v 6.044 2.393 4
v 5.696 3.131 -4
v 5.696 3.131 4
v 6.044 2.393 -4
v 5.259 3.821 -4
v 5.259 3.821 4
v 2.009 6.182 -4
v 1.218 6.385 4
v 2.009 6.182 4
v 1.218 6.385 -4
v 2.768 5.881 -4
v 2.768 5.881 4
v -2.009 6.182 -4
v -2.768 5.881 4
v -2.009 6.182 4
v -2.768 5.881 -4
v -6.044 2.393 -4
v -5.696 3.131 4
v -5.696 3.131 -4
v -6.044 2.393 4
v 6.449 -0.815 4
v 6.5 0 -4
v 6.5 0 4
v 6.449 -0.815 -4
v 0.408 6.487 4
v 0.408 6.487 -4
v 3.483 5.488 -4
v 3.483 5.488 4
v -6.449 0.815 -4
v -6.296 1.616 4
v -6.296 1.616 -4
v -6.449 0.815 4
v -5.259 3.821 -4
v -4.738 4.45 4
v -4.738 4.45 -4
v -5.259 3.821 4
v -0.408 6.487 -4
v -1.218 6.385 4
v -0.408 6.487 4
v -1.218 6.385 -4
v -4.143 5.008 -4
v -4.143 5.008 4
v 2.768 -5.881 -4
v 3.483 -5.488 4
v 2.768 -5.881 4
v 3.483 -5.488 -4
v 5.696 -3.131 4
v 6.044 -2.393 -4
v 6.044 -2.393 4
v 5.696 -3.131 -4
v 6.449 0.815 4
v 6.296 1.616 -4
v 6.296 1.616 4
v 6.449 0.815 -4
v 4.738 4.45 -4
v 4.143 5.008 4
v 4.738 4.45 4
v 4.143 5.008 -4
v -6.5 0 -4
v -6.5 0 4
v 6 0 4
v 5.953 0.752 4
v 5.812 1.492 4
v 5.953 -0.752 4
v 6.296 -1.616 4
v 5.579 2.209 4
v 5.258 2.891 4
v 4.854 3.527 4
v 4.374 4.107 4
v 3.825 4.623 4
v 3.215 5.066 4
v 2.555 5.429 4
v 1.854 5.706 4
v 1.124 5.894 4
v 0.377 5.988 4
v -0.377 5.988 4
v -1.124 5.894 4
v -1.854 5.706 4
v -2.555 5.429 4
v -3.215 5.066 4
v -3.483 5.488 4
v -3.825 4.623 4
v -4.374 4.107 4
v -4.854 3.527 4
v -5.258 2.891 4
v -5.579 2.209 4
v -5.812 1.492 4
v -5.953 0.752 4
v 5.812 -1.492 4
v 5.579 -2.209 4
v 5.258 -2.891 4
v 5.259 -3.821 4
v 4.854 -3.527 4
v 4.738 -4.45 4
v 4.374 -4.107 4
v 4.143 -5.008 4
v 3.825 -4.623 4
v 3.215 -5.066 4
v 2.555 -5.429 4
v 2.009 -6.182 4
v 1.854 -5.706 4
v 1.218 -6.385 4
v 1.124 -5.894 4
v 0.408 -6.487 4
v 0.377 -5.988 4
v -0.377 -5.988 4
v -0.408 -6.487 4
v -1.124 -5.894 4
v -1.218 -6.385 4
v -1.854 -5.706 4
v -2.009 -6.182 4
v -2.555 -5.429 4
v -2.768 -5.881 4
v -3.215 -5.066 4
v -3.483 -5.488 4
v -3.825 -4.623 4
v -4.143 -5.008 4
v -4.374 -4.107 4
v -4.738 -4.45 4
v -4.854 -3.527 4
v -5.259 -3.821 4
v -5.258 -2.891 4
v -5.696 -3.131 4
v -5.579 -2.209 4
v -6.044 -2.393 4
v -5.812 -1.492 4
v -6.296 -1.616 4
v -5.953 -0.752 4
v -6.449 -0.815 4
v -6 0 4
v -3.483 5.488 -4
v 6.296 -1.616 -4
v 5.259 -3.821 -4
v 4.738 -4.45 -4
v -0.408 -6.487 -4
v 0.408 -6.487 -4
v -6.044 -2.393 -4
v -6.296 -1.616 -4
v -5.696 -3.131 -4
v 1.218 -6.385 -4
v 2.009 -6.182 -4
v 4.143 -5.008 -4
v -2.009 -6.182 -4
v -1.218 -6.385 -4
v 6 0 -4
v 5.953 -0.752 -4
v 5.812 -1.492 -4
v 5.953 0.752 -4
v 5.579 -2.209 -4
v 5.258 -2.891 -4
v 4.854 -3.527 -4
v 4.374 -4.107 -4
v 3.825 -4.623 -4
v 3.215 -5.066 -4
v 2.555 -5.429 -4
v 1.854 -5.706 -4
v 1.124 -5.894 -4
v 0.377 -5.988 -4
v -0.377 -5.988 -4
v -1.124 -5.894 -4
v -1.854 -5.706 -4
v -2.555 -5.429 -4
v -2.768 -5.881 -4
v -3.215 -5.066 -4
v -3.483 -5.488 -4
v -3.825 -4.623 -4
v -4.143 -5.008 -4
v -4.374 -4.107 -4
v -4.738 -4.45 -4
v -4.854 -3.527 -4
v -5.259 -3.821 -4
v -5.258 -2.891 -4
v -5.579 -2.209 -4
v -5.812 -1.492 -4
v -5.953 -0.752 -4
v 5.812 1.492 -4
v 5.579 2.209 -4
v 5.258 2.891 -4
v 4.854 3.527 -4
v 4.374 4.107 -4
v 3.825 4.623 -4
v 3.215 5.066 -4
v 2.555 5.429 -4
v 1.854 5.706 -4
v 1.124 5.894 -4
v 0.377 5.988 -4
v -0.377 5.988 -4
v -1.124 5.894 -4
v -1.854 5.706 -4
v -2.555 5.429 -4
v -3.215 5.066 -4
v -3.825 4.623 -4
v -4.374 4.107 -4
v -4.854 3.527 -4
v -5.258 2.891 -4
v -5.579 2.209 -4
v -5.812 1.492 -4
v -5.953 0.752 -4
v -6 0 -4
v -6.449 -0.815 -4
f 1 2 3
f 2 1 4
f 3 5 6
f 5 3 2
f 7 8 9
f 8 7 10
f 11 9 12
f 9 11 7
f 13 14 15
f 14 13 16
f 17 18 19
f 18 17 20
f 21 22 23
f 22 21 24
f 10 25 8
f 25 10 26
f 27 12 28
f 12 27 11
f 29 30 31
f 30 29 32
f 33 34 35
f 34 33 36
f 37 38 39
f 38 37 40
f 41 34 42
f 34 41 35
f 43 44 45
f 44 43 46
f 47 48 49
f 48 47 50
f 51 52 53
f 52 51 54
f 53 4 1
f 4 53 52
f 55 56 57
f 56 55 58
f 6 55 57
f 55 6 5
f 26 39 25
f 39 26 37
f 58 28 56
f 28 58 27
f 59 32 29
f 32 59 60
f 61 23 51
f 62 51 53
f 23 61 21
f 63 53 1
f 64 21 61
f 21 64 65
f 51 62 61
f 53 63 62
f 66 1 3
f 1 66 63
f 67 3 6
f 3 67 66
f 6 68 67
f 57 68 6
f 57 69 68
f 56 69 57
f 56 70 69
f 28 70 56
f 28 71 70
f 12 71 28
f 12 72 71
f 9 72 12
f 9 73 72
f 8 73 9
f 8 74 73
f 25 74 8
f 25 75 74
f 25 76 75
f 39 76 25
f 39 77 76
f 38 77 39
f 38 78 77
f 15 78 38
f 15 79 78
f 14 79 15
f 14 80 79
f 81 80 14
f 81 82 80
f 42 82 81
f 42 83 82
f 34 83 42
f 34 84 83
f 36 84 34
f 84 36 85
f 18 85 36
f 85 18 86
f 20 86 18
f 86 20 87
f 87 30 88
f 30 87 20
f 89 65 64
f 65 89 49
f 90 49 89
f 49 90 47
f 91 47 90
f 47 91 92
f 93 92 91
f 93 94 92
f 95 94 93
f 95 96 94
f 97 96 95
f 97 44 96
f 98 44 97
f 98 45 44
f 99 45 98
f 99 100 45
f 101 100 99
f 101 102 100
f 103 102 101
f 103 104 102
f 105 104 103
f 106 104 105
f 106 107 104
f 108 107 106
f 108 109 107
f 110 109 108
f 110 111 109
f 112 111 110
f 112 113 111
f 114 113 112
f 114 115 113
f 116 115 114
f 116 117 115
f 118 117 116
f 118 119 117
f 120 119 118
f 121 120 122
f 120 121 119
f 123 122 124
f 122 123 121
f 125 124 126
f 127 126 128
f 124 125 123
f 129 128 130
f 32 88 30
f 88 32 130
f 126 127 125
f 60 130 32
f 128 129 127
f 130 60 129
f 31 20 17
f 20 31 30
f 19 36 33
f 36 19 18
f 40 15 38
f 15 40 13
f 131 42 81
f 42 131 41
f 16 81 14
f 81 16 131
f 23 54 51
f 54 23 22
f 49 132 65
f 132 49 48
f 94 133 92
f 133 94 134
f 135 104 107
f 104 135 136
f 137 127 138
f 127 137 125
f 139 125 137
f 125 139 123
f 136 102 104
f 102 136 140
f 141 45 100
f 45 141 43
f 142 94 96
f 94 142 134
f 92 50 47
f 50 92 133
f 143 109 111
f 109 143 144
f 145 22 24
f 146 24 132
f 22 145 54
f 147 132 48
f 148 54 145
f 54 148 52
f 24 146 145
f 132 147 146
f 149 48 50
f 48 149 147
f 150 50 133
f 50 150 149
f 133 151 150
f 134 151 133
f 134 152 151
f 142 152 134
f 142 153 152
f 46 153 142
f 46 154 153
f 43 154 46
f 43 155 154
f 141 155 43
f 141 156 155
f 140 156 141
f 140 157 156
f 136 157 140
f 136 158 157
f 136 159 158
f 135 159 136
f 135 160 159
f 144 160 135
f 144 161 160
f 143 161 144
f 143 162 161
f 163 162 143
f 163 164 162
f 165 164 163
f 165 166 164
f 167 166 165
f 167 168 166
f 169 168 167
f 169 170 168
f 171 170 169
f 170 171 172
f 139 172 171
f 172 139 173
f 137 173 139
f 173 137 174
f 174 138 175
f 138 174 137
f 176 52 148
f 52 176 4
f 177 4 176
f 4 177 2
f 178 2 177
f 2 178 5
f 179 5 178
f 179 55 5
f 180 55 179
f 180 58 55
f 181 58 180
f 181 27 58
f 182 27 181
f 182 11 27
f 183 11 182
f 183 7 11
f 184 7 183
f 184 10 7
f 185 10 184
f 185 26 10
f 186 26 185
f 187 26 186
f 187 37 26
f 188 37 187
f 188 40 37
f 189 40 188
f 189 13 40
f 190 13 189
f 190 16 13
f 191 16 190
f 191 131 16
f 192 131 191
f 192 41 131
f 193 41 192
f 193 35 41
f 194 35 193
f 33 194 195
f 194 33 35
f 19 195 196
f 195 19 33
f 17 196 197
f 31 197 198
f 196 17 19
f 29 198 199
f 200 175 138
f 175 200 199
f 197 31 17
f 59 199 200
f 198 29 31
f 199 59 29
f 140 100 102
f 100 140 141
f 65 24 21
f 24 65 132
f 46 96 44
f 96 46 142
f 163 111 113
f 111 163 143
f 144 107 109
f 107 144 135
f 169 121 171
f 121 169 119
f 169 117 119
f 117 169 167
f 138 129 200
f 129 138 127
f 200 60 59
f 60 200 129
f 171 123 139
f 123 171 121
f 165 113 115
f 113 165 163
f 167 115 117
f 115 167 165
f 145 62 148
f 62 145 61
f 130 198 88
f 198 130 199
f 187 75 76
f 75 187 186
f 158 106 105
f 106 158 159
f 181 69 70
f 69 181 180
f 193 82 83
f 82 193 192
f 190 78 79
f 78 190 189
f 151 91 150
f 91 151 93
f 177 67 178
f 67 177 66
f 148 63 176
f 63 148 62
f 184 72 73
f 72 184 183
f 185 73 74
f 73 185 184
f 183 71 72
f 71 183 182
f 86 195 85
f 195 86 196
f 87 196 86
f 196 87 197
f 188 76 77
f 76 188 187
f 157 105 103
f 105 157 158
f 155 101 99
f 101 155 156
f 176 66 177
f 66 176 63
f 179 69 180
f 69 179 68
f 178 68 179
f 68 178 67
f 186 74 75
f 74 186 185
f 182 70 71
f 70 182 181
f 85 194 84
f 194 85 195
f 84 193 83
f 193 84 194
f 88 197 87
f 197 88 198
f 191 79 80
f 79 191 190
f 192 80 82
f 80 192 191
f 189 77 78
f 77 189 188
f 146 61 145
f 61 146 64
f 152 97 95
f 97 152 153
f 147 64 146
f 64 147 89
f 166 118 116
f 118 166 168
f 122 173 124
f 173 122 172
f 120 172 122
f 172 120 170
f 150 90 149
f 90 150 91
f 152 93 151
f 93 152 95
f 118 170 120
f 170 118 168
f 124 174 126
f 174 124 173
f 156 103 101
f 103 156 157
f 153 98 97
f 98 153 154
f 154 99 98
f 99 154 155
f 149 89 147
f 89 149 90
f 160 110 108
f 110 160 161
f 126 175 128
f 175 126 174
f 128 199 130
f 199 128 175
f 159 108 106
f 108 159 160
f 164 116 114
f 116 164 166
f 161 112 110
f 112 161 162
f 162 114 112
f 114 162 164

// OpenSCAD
$fn = 50;


difference() {
	union() {
		translate(v = [0, 0, -4.0000000000]) {
			cylinder(h = 8, r = 6.5000000000);
		}
	}
	union() {
		translate(v = [0, 0, -100.0000000000]) {
			cylinder(h = 200, r = 6);
		}
	}
}
